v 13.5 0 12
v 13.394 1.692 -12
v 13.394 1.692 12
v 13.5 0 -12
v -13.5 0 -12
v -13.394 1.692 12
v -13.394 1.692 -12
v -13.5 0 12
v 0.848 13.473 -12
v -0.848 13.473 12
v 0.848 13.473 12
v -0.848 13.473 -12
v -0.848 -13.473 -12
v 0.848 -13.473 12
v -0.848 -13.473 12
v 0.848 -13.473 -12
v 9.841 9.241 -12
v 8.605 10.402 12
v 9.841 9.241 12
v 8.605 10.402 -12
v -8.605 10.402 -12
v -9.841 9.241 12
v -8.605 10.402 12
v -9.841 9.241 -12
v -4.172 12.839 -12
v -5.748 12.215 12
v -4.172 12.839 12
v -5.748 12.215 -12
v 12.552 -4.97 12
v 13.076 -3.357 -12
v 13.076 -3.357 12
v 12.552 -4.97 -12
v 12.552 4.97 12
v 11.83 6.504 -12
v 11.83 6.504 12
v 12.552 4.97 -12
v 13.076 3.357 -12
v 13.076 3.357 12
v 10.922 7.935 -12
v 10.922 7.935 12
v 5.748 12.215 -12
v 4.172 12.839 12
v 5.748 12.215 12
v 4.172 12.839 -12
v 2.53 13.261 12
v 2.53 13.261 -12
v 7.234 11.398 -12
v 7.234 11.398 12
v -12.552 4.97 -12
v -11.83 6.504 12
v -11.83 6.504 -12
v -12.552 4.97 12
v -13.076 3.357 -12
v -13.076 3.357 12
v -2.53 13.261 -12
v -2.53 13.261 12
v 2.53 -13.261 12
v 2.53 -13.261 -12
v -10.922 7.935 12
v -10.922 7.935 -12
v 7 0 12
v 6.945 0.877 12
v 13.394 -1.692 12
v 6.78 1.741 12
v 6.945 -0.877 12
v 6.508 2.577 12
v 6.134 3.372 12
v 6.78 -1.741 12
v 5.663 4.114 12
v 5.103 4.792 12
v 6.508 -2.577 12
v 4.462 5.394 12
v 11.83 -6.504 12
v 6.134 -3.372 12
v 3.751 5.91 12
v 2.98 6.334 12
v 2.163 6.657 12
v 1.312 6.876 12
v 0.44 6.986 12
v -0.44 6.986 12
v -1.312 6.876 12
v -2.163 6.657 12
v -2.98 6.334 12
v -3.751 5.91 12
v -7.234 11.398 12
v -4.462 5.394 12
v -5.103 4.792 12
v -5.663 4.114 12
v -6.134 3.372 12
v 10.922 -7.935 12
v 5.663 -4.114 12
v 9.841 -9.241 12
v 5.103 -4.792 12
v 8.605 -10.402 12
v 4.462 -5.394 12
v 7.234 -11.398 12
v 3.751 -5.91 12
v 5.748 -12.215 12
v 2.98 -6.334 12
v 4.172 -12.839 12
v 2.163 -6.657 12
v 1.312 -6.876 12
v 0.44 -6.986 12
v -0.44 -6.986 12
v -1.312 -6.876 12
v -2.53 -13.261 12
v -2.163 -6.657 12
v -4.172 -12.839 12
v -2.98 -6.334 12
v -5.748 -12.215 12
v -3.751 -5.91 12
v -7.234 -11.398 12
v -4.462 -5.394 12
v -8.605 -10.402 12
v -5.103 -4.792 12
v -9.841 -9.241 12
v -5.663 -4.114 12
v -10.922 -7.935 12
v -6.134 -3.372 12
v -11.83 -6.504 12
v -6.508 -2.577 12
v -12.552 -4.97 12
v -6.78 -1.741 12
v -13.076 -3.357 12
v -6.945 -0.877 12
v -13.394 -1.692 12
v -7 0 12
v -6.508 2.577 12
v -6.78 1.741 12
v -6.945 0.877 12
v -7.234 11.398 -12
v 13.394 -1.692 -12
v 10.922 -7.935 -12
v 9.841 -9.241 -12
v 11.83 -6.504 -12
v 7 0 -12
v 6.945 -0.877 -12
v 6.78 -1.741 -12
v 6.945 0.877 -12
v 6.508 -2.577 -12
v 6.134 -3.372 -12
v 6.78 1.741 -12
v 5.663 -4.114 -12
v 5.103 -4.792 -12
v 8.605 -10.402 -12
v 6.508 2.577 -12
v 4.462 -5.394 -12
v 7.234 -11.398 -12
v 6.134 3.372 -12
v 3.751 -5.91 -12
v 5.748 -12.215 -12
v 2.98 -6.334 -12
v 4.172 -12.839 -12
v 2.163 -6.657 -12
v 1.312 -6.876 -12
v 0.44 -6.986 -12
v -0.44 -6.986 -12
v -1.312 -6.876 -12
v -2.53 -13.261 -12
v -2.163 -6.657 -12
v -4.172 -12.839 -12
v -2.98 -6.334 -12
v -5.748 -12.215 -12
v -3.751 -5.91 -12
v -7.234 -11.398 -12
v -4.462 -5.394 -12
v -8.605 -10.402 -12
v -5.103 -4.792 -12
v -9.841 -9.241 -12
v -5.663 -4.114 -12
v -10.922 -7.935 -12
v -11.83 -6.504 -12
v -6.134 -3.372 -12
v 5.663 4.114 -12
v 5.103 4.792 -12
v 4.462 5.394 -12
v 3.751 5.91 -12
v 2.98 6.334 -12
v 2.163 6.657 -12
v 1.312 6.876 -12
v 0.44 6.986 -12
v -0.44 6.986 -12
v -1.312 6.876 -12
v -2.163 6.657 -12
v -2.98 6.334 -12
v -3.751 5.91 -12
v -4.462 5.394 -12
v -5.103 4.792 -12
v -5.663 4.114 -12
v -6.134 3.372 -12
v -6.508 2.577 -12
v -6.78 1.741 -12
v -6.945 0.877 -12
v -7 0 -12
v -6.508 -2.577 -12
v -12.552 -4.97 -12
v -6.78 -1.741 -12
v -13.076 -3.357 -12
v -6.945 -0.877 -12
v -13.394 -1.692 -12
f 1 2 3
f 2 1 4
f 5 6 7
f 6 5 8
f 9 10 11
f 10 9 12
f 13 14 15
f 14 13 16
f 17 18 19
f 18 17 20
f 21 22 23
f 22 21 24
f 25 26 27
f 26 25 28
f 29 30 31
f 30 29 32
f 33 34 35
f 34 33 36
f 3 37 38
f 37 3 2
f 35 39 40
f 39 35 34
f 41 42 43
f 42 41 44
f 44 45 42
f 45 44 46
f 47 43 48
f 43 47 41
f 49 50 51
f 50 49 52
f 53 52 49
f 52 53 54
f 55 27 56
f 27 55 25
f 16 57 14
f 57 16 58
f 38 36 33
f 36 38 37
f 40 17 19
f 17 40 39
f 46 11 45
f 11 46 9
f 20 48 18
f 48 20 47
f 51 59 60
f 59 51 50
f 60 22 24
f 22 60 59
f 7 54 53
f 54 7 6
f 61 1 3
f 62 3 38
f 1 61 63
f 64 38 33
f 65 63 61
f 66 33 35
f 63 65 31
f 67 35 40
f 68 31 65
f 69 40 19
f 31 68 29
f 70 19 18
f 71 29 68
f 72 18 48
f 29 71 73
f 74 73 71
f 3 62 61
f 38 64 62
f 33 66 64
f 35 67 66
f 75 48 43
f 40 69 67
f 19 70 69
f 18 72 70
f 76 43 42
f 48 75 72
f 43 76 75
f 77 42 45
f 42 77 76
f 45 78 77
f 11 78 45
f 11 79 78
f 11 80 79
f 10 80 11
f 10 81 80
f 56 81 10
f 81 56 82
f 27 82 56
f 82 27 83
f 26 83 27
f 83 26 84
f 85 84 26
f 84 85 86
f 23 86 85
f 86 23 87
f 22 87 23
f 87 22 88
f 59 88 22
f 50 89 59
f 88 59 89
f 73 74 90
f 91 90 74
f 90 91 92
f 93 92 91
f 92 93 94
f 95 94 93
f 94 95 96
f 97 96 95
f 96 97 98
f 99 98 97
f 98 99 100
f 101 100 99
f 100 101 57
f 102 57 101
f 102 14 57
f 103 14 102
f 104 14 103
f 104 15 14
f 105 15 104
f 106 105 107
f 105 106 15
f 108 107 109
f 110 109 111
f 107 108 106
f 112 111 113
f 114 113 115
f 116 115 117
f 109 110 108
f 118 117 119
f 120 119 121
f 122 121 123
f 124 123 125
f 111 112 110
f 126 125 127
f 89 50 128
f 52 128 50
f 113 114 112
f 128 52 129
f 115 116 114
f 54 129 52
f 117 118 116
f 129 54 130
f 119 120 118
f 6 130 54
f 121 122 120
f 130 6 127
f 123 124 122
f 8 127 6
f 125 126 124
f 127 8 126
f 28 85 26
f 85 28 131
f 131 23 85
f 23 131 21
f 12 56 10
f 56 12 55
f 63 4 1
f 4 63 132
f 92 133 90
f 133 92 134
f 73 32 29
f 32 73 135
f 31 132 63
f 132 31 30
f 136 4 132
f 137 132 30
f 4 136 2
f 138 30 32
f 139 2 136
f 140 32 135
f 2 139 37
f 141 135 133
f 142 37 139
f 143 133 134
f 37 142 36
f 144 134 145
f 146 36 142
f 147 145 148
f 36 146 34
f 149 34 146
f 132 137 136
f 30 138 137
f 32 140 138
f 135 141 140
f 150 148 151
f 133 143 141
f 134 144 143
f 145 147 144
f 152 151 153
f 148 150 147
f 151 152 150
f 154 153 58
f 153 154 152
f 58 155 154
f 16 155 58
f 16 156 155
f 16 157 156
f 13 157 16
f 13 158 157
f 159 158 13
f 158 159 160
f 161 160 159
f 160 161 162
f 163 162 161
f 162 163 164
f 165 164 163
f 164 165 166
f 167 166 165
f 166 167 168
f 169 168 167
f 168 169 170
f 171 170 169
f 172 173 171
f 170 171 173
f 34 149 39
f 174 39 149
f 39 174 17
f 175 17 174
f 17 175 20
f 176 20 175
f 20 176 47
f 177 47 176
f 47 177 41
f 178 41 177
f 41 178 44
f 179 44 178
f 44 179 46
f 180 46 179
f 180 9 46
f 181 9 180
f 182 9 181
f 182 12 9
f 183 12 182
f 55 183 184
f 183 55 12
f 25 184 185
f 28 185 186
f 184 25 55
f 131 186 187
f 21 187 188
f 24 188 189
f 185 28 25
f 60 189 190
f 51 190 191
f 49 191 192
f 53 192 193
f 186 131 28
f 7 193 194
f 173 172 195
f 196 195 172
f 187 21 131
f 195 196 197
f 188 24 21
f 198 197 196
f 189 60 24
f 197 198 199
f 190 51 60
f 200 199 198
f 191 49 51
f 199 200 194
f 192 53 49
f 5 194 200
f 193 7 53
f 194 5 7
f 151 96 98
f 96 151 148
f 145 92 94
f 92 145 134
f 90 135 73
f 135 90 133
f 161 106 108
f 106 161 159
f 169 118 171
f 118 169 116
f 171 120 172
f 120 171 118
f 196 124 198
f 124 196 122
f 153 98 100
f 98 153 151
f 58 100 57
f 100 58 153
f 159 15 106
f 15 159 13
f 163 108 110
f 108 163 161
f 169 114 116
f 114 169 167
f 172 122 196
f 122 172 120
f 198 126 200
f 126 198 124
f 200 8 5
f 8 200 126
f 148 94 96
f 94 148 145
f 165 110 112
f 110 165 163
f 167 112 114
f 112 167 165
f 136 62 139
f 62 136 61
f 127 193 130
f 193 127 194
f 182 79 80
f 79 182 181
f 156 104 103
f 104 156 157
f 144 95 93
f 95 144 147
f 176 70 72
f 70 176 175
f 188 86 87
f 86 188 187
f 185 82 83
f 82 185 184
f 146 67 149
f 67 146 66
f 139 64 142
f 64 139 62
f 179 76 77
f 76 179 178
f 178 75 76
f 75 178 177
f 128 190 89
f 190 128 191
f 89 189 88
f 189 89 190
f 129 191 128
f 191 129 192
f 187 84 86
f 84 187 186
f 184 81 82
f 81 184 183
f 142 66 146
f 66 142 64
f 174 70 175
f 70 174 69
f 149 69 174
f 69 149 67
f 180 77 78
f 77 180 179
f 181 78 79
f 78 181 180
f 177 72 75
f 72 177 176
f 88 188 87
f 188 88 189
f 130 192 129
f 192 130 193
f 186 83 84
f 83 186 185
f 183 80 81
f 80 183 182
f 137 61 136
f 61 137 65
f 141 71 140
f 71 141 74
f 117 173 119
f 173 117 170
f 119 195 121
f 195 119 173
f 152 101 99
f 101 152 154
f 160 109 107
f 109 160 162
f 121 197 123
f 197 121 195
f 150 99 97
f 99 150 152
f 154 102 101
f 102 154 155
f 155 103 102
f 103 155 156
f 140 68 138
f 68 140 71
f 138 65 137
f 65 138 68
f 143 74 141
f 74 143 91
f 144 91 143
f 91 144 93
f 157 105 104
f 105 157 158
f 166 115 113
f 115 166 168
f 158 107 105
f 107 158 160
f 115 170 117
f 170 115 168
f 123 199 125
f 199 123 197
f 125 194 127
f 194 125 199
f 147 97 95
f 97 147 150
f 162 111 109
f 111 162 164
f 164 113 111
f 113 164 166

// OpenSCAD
$fn = 50;


difference() {
	union() {
		translate(v = [0, 0, -12.0000000000]) {
			cylinder(h = 24, r = 13.5000000000);
		}
	}
	union() {
		translate(v = [0, 0, -100.0000000000]) {
			cylinder(h = 200, r = 7);
		}
	}
}
